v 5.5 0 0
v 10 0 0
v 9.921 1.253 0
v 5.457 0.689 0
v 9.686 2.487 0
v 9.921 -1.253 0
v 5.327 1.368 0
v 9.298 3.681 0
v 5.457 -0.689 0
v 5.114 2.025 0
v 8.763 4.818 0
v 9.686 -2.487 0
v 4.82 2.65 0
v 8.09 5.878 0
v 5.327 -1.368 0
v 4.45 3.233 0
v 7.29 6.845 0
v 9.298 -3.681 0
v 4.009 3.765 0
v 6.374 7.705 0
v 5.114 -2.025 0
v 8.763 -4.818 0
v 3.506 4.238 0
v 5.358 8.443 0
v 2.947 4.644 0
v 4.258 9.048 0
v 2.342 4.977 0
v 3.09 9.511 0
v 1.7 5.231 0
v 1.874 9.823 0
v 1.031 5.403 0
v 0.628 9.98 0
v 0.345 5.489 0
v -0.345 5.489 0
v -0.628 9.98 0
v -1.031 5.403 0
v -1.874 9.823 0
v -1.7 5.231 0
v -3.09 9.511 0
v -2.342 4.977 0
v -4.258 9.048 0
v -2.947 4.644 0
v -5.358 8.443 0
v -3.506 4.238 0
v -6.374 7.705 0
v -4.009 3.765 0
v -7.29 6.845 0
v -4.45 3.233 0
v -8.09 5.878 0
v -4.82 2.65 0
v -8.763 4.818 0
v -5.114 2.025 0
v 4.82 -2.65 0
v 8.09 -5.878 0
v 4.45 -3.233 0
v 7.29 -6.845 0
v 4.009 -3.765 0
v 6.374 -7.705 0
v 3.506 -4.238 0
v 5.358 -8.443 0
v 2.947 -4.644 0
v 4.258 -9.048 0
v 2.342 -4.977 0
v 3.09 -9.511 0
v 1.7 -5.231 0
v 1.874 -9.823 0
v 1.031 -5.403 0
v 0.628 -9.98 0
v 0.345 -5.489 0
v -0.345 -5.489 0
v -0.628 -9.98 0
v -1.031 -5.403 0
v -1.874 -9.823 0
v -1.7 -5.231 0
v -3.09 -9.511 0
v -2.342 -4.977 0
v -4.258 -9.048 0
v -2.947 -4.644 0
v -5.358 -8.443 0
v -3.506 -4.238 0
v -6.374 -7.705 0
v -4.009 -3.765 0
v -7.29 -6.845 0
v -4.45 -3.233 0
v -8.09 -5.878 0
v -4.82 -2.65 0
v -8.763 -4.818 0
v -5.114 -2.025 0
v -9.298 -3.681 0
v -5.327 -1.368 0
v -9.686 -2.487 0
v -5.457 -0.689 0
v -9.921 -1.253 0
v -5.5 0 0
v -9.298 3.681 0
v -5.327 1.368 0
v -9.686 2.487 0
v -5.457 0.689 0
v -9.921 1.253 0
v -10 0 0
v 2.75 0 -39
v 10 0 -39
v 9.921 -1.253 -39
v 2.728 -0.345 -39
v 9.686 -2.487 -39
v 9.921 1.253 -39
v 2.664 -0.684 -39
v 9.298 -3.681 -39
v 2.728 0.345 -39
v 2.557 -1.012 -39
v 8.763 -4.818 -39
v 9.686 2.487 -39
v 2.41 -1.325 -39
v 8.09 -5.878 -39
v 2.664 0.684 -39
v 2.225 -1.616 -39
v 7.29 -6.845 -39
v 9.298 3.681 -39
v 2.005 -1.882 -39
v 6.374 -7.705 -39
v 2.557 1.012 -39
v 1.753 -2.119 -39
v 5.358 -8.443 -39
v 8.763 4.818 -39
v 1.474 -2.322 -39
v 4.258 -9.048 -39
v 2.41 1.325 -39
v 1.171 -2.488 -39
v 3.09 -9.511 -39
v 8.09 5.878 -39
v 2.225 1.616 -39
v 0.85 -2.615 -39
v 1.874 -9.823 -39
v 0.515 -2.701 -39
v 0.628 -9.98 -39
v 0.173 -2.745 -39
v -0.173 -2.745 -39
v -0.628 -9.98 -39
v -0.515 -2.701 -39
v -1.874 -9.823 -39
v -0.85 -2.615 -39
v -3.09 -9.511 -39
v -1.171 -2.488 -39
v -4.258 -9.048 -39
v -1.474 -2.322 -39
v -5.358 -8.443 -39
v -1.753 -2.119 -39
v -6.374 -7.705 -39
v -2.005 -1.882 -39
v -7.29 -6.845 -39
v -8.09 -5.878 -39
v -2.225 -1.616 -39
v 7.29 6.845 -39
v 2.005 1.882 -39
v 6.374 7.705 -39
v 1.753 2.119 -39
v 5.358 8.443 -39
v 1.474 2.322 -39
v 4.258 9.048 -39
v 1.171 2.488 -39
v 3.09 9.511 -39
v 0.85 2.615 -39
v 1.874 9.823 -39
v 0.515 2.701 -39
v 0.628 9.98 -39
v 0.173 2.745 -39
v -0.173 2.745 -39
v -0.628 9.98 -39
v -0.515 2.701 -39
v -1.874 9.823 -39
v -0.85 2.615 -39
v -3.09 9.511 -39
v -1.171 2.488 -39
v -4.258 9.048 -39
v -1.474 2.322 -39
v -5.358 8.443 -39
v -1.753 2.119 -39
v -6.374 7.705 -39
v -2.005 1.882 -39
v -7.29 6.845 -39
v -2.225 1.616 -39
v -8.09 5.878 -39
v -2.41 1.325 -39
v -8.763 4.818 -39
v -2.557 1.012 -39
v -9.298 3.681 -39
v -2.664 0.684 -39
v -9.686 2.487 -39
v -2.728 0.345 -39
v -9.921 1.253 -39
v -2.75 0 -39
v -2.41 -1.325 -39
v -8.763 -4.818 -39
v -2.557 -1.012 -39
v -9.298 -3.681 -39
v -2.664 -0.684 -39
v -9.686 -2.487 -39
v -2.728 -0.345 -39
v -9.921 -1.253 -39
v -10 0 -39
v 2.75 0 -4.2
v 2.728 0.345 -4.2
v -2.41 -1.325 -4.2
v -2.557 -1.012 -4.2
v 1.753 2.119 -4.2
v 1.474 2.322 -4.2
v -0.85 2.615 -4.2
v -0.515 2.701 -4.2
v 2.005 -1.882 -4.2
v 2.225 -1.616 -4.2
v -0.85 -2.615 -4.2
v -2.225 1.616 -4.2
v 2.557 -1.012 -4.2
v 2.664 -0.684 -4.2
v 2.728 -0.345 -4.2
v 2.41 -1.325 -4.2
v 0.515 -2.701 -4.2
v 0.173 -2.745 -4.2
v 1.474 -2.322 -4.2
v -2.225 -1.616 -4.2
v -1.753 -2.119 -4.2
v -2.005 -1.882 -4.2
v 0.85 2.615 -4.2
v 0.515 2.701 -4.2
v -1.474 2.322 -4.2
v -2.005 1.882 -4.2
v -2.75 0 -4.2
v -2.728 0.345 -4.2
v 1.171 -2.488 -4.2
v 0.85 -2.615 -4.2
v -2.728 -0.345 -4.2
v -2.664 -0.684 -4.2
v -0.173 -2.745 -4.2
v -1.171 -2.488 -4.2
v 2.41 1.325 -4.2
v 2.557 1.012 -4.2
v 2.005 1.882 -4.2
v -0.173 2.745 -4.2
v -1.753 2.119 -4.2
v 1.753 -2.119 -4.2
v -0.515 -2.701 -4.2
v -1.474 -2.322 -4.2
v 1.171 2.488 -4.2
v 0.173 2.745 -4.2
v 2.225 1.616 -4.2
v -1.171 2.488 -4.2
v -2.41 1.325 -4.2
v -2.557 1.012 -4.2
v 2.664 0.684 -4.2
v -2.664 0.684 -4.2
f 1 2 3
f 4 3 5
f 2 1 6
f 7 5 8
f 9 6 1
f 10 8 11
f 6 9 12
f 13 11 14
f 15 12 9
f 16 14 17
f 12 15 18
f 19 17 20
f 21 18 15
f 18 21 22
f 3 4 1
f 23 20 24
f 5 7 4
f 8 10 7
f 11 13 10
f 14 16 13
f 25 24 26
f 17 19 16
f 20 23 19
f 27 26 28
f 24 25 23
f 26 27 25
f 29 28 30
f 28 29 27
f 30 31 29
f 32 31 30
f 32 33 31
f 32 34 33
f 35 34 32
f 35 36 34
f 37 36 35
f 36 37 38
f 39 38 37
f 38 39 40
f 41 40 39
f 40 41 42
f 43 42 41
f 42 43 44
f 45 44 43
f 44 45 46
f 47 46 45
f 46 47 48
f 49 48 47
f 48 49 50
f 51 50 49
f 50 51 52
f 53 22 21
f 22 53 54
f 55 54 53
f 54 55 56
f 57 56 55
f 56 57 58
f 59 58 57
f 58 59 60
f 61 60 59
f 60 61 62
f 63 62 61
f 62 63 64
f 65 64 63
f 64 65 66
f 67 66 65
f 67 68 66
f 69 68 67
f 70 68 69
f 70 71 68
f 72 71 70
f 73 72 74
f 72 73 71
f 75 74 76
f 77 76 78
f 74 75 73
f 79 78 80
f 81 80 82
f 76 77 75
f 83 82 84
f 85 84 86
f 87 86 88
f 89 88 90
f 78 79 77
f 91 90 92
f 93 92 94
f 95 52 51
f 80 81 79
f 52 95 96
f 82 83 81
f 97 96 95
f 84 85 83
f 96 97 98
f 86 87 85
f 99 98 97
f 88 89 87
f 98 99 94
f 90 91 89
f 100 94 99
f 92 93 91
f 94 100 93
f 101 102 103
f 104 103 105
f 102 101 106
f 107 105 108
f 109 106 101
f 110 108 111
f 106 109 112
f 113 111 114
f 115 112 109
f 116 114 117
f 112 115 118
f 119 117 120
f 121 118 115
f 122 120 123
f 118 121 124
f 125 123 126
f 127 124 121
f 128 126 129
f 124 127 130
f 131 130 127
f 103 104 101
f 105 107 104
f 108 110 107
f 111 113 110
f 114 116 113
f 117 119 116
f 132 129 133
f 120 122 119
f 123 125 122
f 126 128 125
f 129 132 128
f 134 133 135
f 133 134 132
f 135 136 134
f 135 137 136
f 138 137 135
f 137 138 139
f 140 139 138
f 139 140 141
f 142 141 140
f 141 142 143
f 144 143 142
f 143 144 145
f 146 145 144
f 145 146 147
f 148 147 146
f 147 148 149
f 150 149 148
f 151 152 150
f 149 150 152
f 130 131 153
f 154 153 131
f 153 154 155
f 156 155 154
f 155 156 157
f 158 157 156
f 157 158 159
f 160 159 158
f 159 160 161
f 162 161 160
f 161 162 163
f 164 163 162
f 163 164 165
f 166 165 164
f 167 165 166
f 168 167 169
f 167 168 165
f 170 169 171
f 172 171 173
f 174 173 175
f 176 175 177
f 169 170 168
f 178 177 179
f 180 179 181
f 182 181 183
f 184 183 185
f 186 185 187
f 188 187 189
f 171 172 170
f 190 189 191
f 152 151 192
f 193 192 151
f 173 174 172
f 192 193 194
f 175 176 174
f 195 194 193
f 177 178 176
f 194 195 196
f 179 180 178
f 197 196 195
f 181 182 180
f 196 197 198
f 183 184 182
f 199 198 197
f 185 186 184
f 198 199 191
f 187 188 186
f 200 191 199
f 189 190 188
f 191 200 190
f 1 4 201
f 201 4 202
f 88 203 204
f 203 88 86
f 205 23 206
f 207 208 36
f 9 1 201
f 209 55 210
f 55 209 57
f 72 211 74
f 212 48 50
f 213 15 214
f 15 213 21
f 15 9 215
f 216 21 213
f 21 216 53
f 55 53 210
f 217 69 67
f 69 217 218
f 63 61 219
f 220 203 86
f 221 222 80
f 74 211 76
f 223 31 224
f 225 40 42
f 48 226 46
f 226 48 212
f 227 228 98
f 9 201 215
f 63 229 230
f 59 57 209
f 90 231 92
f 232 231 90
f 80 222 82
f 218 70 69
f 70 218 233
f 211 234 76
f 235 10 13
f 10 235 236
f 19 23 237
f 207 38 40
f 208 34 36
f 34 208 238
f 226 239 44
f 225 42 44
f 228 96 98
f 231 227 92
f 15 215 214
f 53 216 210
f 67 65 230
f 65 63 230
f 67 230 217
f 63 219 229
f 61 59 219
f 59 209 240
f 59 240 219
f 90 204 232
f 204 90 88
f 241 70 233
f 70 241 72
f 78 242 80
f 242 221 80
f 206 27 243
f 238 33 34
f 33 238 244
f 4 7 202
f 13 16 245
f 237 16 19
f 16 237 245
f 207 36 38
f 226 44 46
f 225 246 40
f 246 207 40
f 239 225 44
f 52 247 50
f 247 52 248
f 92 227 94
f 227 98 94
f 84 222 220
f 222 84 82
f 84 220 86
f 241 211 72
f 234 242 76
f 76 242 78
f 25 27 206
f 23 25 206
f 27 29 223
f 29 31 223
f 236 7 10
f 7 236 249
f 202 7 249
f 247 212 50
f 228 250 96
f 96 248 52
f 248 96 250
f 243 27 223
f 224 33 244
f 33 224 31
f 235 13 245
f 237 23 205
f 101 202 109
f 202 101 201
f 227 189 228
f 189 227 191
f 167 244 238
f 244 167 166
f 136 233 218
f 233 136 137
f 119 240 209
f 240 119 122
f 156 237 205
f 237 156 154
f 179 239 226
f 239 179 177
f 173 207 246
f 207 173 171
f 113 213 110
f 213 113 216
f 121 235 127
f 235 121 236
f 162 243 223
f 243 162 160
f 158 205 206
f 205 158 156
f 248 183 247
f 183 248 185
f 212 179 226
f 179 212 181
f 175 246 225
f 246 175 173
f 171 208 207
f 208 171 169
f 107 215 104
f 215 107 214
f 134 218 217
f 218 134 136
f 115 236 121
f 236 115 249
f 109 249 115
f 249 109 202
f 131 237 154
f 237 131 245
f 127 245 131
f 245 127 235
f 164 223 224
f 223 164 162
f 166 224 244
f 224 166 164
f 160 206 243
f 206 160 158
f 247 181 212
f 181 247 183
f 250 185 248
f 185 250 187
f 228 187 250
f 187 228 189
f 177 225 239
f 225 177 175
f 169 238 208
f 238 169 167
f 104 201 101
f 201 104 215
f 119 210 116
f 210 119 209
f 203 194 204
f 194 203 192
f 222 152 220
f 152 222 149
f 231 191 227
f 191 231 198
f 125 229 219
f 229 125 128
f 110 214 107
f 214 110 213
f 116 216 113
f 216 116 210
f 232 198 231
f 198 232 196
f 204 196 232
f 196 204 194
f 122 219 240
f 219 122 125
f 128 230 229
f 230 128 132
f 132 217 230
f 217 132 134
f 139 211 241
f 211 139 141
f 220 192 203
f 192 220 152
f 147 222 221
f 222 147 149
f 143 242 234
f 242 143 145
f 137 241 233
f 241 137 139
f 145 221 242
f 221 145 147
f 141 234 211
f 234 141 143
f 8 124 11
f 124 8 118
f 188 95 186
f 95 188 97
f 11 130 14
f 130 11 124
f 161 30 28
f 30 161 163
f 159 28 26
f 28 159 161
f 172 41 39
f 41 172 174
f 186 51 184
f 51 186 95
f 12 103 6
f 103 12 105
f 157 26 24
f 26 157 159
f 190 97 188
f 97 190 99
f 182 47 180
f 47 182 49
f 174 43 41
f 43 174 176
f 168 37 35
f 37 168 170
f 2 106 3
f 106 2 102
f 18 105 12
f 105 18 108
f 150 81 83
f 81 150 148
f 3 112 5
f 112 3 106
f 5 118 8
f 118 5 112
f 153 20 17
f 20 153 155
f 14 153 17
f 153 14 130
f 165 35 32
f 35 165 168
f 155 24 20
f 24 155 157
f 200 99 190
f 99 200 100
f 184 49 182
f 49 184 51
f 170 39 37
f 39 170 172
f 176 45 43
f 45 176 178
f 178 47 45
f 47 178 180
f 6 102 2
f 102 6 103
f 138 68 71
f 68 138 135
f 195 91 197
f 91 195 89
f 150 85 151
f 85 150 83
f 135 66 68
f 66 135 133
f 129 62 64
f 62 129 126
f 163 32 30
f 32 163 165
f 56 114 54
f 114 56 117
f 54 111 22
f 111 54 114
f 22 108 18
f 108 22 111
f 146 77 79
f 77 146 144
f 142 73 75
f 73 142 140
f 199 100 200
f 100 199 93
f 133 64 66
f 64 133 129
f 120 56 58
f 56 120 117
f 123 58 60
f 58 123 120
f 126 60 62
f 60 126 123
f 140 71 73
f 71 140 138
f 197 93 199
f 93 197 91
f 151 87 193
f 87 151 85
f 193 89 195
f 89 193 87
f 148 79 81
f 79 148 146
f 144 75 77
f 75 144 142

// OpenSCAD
$fn = 50;


difference() {
	union() {
		translate(v = [0, 0, -39.0000000000]) {
			cylinder(h = 39, r = 10.0000000000);
		}
		cylinder(h = 0, r = 19.0000000000);
	}
	union() {
		translate(v = [0, 0, 0]) {
			rotate(a = [0, 0, 0]) {
				difference() {
					union() {
						#translate(v = [0, 0, -39.0000000000]) {
							cylinder(h = 39, r = 2.2500000000);
						}
						#translate(v = [0, 0, -4.2000000000]) {
							cylinder(h = 4.2000000000, r = 10.0000000000, r1 = 2.7500000000, r2 = 5.5000000000);
						}
						#translate(v = [0, 0, -39.0000000000]) {
							cylinder(h = 39, r = 2.7500000000);
						}
						#translate(v = [0, 0, -39.0000000000]) {
							cylinder(h = 39, r = 2.2500000000);
						}
					}
					union();
				}
			}
		}
	}
}
